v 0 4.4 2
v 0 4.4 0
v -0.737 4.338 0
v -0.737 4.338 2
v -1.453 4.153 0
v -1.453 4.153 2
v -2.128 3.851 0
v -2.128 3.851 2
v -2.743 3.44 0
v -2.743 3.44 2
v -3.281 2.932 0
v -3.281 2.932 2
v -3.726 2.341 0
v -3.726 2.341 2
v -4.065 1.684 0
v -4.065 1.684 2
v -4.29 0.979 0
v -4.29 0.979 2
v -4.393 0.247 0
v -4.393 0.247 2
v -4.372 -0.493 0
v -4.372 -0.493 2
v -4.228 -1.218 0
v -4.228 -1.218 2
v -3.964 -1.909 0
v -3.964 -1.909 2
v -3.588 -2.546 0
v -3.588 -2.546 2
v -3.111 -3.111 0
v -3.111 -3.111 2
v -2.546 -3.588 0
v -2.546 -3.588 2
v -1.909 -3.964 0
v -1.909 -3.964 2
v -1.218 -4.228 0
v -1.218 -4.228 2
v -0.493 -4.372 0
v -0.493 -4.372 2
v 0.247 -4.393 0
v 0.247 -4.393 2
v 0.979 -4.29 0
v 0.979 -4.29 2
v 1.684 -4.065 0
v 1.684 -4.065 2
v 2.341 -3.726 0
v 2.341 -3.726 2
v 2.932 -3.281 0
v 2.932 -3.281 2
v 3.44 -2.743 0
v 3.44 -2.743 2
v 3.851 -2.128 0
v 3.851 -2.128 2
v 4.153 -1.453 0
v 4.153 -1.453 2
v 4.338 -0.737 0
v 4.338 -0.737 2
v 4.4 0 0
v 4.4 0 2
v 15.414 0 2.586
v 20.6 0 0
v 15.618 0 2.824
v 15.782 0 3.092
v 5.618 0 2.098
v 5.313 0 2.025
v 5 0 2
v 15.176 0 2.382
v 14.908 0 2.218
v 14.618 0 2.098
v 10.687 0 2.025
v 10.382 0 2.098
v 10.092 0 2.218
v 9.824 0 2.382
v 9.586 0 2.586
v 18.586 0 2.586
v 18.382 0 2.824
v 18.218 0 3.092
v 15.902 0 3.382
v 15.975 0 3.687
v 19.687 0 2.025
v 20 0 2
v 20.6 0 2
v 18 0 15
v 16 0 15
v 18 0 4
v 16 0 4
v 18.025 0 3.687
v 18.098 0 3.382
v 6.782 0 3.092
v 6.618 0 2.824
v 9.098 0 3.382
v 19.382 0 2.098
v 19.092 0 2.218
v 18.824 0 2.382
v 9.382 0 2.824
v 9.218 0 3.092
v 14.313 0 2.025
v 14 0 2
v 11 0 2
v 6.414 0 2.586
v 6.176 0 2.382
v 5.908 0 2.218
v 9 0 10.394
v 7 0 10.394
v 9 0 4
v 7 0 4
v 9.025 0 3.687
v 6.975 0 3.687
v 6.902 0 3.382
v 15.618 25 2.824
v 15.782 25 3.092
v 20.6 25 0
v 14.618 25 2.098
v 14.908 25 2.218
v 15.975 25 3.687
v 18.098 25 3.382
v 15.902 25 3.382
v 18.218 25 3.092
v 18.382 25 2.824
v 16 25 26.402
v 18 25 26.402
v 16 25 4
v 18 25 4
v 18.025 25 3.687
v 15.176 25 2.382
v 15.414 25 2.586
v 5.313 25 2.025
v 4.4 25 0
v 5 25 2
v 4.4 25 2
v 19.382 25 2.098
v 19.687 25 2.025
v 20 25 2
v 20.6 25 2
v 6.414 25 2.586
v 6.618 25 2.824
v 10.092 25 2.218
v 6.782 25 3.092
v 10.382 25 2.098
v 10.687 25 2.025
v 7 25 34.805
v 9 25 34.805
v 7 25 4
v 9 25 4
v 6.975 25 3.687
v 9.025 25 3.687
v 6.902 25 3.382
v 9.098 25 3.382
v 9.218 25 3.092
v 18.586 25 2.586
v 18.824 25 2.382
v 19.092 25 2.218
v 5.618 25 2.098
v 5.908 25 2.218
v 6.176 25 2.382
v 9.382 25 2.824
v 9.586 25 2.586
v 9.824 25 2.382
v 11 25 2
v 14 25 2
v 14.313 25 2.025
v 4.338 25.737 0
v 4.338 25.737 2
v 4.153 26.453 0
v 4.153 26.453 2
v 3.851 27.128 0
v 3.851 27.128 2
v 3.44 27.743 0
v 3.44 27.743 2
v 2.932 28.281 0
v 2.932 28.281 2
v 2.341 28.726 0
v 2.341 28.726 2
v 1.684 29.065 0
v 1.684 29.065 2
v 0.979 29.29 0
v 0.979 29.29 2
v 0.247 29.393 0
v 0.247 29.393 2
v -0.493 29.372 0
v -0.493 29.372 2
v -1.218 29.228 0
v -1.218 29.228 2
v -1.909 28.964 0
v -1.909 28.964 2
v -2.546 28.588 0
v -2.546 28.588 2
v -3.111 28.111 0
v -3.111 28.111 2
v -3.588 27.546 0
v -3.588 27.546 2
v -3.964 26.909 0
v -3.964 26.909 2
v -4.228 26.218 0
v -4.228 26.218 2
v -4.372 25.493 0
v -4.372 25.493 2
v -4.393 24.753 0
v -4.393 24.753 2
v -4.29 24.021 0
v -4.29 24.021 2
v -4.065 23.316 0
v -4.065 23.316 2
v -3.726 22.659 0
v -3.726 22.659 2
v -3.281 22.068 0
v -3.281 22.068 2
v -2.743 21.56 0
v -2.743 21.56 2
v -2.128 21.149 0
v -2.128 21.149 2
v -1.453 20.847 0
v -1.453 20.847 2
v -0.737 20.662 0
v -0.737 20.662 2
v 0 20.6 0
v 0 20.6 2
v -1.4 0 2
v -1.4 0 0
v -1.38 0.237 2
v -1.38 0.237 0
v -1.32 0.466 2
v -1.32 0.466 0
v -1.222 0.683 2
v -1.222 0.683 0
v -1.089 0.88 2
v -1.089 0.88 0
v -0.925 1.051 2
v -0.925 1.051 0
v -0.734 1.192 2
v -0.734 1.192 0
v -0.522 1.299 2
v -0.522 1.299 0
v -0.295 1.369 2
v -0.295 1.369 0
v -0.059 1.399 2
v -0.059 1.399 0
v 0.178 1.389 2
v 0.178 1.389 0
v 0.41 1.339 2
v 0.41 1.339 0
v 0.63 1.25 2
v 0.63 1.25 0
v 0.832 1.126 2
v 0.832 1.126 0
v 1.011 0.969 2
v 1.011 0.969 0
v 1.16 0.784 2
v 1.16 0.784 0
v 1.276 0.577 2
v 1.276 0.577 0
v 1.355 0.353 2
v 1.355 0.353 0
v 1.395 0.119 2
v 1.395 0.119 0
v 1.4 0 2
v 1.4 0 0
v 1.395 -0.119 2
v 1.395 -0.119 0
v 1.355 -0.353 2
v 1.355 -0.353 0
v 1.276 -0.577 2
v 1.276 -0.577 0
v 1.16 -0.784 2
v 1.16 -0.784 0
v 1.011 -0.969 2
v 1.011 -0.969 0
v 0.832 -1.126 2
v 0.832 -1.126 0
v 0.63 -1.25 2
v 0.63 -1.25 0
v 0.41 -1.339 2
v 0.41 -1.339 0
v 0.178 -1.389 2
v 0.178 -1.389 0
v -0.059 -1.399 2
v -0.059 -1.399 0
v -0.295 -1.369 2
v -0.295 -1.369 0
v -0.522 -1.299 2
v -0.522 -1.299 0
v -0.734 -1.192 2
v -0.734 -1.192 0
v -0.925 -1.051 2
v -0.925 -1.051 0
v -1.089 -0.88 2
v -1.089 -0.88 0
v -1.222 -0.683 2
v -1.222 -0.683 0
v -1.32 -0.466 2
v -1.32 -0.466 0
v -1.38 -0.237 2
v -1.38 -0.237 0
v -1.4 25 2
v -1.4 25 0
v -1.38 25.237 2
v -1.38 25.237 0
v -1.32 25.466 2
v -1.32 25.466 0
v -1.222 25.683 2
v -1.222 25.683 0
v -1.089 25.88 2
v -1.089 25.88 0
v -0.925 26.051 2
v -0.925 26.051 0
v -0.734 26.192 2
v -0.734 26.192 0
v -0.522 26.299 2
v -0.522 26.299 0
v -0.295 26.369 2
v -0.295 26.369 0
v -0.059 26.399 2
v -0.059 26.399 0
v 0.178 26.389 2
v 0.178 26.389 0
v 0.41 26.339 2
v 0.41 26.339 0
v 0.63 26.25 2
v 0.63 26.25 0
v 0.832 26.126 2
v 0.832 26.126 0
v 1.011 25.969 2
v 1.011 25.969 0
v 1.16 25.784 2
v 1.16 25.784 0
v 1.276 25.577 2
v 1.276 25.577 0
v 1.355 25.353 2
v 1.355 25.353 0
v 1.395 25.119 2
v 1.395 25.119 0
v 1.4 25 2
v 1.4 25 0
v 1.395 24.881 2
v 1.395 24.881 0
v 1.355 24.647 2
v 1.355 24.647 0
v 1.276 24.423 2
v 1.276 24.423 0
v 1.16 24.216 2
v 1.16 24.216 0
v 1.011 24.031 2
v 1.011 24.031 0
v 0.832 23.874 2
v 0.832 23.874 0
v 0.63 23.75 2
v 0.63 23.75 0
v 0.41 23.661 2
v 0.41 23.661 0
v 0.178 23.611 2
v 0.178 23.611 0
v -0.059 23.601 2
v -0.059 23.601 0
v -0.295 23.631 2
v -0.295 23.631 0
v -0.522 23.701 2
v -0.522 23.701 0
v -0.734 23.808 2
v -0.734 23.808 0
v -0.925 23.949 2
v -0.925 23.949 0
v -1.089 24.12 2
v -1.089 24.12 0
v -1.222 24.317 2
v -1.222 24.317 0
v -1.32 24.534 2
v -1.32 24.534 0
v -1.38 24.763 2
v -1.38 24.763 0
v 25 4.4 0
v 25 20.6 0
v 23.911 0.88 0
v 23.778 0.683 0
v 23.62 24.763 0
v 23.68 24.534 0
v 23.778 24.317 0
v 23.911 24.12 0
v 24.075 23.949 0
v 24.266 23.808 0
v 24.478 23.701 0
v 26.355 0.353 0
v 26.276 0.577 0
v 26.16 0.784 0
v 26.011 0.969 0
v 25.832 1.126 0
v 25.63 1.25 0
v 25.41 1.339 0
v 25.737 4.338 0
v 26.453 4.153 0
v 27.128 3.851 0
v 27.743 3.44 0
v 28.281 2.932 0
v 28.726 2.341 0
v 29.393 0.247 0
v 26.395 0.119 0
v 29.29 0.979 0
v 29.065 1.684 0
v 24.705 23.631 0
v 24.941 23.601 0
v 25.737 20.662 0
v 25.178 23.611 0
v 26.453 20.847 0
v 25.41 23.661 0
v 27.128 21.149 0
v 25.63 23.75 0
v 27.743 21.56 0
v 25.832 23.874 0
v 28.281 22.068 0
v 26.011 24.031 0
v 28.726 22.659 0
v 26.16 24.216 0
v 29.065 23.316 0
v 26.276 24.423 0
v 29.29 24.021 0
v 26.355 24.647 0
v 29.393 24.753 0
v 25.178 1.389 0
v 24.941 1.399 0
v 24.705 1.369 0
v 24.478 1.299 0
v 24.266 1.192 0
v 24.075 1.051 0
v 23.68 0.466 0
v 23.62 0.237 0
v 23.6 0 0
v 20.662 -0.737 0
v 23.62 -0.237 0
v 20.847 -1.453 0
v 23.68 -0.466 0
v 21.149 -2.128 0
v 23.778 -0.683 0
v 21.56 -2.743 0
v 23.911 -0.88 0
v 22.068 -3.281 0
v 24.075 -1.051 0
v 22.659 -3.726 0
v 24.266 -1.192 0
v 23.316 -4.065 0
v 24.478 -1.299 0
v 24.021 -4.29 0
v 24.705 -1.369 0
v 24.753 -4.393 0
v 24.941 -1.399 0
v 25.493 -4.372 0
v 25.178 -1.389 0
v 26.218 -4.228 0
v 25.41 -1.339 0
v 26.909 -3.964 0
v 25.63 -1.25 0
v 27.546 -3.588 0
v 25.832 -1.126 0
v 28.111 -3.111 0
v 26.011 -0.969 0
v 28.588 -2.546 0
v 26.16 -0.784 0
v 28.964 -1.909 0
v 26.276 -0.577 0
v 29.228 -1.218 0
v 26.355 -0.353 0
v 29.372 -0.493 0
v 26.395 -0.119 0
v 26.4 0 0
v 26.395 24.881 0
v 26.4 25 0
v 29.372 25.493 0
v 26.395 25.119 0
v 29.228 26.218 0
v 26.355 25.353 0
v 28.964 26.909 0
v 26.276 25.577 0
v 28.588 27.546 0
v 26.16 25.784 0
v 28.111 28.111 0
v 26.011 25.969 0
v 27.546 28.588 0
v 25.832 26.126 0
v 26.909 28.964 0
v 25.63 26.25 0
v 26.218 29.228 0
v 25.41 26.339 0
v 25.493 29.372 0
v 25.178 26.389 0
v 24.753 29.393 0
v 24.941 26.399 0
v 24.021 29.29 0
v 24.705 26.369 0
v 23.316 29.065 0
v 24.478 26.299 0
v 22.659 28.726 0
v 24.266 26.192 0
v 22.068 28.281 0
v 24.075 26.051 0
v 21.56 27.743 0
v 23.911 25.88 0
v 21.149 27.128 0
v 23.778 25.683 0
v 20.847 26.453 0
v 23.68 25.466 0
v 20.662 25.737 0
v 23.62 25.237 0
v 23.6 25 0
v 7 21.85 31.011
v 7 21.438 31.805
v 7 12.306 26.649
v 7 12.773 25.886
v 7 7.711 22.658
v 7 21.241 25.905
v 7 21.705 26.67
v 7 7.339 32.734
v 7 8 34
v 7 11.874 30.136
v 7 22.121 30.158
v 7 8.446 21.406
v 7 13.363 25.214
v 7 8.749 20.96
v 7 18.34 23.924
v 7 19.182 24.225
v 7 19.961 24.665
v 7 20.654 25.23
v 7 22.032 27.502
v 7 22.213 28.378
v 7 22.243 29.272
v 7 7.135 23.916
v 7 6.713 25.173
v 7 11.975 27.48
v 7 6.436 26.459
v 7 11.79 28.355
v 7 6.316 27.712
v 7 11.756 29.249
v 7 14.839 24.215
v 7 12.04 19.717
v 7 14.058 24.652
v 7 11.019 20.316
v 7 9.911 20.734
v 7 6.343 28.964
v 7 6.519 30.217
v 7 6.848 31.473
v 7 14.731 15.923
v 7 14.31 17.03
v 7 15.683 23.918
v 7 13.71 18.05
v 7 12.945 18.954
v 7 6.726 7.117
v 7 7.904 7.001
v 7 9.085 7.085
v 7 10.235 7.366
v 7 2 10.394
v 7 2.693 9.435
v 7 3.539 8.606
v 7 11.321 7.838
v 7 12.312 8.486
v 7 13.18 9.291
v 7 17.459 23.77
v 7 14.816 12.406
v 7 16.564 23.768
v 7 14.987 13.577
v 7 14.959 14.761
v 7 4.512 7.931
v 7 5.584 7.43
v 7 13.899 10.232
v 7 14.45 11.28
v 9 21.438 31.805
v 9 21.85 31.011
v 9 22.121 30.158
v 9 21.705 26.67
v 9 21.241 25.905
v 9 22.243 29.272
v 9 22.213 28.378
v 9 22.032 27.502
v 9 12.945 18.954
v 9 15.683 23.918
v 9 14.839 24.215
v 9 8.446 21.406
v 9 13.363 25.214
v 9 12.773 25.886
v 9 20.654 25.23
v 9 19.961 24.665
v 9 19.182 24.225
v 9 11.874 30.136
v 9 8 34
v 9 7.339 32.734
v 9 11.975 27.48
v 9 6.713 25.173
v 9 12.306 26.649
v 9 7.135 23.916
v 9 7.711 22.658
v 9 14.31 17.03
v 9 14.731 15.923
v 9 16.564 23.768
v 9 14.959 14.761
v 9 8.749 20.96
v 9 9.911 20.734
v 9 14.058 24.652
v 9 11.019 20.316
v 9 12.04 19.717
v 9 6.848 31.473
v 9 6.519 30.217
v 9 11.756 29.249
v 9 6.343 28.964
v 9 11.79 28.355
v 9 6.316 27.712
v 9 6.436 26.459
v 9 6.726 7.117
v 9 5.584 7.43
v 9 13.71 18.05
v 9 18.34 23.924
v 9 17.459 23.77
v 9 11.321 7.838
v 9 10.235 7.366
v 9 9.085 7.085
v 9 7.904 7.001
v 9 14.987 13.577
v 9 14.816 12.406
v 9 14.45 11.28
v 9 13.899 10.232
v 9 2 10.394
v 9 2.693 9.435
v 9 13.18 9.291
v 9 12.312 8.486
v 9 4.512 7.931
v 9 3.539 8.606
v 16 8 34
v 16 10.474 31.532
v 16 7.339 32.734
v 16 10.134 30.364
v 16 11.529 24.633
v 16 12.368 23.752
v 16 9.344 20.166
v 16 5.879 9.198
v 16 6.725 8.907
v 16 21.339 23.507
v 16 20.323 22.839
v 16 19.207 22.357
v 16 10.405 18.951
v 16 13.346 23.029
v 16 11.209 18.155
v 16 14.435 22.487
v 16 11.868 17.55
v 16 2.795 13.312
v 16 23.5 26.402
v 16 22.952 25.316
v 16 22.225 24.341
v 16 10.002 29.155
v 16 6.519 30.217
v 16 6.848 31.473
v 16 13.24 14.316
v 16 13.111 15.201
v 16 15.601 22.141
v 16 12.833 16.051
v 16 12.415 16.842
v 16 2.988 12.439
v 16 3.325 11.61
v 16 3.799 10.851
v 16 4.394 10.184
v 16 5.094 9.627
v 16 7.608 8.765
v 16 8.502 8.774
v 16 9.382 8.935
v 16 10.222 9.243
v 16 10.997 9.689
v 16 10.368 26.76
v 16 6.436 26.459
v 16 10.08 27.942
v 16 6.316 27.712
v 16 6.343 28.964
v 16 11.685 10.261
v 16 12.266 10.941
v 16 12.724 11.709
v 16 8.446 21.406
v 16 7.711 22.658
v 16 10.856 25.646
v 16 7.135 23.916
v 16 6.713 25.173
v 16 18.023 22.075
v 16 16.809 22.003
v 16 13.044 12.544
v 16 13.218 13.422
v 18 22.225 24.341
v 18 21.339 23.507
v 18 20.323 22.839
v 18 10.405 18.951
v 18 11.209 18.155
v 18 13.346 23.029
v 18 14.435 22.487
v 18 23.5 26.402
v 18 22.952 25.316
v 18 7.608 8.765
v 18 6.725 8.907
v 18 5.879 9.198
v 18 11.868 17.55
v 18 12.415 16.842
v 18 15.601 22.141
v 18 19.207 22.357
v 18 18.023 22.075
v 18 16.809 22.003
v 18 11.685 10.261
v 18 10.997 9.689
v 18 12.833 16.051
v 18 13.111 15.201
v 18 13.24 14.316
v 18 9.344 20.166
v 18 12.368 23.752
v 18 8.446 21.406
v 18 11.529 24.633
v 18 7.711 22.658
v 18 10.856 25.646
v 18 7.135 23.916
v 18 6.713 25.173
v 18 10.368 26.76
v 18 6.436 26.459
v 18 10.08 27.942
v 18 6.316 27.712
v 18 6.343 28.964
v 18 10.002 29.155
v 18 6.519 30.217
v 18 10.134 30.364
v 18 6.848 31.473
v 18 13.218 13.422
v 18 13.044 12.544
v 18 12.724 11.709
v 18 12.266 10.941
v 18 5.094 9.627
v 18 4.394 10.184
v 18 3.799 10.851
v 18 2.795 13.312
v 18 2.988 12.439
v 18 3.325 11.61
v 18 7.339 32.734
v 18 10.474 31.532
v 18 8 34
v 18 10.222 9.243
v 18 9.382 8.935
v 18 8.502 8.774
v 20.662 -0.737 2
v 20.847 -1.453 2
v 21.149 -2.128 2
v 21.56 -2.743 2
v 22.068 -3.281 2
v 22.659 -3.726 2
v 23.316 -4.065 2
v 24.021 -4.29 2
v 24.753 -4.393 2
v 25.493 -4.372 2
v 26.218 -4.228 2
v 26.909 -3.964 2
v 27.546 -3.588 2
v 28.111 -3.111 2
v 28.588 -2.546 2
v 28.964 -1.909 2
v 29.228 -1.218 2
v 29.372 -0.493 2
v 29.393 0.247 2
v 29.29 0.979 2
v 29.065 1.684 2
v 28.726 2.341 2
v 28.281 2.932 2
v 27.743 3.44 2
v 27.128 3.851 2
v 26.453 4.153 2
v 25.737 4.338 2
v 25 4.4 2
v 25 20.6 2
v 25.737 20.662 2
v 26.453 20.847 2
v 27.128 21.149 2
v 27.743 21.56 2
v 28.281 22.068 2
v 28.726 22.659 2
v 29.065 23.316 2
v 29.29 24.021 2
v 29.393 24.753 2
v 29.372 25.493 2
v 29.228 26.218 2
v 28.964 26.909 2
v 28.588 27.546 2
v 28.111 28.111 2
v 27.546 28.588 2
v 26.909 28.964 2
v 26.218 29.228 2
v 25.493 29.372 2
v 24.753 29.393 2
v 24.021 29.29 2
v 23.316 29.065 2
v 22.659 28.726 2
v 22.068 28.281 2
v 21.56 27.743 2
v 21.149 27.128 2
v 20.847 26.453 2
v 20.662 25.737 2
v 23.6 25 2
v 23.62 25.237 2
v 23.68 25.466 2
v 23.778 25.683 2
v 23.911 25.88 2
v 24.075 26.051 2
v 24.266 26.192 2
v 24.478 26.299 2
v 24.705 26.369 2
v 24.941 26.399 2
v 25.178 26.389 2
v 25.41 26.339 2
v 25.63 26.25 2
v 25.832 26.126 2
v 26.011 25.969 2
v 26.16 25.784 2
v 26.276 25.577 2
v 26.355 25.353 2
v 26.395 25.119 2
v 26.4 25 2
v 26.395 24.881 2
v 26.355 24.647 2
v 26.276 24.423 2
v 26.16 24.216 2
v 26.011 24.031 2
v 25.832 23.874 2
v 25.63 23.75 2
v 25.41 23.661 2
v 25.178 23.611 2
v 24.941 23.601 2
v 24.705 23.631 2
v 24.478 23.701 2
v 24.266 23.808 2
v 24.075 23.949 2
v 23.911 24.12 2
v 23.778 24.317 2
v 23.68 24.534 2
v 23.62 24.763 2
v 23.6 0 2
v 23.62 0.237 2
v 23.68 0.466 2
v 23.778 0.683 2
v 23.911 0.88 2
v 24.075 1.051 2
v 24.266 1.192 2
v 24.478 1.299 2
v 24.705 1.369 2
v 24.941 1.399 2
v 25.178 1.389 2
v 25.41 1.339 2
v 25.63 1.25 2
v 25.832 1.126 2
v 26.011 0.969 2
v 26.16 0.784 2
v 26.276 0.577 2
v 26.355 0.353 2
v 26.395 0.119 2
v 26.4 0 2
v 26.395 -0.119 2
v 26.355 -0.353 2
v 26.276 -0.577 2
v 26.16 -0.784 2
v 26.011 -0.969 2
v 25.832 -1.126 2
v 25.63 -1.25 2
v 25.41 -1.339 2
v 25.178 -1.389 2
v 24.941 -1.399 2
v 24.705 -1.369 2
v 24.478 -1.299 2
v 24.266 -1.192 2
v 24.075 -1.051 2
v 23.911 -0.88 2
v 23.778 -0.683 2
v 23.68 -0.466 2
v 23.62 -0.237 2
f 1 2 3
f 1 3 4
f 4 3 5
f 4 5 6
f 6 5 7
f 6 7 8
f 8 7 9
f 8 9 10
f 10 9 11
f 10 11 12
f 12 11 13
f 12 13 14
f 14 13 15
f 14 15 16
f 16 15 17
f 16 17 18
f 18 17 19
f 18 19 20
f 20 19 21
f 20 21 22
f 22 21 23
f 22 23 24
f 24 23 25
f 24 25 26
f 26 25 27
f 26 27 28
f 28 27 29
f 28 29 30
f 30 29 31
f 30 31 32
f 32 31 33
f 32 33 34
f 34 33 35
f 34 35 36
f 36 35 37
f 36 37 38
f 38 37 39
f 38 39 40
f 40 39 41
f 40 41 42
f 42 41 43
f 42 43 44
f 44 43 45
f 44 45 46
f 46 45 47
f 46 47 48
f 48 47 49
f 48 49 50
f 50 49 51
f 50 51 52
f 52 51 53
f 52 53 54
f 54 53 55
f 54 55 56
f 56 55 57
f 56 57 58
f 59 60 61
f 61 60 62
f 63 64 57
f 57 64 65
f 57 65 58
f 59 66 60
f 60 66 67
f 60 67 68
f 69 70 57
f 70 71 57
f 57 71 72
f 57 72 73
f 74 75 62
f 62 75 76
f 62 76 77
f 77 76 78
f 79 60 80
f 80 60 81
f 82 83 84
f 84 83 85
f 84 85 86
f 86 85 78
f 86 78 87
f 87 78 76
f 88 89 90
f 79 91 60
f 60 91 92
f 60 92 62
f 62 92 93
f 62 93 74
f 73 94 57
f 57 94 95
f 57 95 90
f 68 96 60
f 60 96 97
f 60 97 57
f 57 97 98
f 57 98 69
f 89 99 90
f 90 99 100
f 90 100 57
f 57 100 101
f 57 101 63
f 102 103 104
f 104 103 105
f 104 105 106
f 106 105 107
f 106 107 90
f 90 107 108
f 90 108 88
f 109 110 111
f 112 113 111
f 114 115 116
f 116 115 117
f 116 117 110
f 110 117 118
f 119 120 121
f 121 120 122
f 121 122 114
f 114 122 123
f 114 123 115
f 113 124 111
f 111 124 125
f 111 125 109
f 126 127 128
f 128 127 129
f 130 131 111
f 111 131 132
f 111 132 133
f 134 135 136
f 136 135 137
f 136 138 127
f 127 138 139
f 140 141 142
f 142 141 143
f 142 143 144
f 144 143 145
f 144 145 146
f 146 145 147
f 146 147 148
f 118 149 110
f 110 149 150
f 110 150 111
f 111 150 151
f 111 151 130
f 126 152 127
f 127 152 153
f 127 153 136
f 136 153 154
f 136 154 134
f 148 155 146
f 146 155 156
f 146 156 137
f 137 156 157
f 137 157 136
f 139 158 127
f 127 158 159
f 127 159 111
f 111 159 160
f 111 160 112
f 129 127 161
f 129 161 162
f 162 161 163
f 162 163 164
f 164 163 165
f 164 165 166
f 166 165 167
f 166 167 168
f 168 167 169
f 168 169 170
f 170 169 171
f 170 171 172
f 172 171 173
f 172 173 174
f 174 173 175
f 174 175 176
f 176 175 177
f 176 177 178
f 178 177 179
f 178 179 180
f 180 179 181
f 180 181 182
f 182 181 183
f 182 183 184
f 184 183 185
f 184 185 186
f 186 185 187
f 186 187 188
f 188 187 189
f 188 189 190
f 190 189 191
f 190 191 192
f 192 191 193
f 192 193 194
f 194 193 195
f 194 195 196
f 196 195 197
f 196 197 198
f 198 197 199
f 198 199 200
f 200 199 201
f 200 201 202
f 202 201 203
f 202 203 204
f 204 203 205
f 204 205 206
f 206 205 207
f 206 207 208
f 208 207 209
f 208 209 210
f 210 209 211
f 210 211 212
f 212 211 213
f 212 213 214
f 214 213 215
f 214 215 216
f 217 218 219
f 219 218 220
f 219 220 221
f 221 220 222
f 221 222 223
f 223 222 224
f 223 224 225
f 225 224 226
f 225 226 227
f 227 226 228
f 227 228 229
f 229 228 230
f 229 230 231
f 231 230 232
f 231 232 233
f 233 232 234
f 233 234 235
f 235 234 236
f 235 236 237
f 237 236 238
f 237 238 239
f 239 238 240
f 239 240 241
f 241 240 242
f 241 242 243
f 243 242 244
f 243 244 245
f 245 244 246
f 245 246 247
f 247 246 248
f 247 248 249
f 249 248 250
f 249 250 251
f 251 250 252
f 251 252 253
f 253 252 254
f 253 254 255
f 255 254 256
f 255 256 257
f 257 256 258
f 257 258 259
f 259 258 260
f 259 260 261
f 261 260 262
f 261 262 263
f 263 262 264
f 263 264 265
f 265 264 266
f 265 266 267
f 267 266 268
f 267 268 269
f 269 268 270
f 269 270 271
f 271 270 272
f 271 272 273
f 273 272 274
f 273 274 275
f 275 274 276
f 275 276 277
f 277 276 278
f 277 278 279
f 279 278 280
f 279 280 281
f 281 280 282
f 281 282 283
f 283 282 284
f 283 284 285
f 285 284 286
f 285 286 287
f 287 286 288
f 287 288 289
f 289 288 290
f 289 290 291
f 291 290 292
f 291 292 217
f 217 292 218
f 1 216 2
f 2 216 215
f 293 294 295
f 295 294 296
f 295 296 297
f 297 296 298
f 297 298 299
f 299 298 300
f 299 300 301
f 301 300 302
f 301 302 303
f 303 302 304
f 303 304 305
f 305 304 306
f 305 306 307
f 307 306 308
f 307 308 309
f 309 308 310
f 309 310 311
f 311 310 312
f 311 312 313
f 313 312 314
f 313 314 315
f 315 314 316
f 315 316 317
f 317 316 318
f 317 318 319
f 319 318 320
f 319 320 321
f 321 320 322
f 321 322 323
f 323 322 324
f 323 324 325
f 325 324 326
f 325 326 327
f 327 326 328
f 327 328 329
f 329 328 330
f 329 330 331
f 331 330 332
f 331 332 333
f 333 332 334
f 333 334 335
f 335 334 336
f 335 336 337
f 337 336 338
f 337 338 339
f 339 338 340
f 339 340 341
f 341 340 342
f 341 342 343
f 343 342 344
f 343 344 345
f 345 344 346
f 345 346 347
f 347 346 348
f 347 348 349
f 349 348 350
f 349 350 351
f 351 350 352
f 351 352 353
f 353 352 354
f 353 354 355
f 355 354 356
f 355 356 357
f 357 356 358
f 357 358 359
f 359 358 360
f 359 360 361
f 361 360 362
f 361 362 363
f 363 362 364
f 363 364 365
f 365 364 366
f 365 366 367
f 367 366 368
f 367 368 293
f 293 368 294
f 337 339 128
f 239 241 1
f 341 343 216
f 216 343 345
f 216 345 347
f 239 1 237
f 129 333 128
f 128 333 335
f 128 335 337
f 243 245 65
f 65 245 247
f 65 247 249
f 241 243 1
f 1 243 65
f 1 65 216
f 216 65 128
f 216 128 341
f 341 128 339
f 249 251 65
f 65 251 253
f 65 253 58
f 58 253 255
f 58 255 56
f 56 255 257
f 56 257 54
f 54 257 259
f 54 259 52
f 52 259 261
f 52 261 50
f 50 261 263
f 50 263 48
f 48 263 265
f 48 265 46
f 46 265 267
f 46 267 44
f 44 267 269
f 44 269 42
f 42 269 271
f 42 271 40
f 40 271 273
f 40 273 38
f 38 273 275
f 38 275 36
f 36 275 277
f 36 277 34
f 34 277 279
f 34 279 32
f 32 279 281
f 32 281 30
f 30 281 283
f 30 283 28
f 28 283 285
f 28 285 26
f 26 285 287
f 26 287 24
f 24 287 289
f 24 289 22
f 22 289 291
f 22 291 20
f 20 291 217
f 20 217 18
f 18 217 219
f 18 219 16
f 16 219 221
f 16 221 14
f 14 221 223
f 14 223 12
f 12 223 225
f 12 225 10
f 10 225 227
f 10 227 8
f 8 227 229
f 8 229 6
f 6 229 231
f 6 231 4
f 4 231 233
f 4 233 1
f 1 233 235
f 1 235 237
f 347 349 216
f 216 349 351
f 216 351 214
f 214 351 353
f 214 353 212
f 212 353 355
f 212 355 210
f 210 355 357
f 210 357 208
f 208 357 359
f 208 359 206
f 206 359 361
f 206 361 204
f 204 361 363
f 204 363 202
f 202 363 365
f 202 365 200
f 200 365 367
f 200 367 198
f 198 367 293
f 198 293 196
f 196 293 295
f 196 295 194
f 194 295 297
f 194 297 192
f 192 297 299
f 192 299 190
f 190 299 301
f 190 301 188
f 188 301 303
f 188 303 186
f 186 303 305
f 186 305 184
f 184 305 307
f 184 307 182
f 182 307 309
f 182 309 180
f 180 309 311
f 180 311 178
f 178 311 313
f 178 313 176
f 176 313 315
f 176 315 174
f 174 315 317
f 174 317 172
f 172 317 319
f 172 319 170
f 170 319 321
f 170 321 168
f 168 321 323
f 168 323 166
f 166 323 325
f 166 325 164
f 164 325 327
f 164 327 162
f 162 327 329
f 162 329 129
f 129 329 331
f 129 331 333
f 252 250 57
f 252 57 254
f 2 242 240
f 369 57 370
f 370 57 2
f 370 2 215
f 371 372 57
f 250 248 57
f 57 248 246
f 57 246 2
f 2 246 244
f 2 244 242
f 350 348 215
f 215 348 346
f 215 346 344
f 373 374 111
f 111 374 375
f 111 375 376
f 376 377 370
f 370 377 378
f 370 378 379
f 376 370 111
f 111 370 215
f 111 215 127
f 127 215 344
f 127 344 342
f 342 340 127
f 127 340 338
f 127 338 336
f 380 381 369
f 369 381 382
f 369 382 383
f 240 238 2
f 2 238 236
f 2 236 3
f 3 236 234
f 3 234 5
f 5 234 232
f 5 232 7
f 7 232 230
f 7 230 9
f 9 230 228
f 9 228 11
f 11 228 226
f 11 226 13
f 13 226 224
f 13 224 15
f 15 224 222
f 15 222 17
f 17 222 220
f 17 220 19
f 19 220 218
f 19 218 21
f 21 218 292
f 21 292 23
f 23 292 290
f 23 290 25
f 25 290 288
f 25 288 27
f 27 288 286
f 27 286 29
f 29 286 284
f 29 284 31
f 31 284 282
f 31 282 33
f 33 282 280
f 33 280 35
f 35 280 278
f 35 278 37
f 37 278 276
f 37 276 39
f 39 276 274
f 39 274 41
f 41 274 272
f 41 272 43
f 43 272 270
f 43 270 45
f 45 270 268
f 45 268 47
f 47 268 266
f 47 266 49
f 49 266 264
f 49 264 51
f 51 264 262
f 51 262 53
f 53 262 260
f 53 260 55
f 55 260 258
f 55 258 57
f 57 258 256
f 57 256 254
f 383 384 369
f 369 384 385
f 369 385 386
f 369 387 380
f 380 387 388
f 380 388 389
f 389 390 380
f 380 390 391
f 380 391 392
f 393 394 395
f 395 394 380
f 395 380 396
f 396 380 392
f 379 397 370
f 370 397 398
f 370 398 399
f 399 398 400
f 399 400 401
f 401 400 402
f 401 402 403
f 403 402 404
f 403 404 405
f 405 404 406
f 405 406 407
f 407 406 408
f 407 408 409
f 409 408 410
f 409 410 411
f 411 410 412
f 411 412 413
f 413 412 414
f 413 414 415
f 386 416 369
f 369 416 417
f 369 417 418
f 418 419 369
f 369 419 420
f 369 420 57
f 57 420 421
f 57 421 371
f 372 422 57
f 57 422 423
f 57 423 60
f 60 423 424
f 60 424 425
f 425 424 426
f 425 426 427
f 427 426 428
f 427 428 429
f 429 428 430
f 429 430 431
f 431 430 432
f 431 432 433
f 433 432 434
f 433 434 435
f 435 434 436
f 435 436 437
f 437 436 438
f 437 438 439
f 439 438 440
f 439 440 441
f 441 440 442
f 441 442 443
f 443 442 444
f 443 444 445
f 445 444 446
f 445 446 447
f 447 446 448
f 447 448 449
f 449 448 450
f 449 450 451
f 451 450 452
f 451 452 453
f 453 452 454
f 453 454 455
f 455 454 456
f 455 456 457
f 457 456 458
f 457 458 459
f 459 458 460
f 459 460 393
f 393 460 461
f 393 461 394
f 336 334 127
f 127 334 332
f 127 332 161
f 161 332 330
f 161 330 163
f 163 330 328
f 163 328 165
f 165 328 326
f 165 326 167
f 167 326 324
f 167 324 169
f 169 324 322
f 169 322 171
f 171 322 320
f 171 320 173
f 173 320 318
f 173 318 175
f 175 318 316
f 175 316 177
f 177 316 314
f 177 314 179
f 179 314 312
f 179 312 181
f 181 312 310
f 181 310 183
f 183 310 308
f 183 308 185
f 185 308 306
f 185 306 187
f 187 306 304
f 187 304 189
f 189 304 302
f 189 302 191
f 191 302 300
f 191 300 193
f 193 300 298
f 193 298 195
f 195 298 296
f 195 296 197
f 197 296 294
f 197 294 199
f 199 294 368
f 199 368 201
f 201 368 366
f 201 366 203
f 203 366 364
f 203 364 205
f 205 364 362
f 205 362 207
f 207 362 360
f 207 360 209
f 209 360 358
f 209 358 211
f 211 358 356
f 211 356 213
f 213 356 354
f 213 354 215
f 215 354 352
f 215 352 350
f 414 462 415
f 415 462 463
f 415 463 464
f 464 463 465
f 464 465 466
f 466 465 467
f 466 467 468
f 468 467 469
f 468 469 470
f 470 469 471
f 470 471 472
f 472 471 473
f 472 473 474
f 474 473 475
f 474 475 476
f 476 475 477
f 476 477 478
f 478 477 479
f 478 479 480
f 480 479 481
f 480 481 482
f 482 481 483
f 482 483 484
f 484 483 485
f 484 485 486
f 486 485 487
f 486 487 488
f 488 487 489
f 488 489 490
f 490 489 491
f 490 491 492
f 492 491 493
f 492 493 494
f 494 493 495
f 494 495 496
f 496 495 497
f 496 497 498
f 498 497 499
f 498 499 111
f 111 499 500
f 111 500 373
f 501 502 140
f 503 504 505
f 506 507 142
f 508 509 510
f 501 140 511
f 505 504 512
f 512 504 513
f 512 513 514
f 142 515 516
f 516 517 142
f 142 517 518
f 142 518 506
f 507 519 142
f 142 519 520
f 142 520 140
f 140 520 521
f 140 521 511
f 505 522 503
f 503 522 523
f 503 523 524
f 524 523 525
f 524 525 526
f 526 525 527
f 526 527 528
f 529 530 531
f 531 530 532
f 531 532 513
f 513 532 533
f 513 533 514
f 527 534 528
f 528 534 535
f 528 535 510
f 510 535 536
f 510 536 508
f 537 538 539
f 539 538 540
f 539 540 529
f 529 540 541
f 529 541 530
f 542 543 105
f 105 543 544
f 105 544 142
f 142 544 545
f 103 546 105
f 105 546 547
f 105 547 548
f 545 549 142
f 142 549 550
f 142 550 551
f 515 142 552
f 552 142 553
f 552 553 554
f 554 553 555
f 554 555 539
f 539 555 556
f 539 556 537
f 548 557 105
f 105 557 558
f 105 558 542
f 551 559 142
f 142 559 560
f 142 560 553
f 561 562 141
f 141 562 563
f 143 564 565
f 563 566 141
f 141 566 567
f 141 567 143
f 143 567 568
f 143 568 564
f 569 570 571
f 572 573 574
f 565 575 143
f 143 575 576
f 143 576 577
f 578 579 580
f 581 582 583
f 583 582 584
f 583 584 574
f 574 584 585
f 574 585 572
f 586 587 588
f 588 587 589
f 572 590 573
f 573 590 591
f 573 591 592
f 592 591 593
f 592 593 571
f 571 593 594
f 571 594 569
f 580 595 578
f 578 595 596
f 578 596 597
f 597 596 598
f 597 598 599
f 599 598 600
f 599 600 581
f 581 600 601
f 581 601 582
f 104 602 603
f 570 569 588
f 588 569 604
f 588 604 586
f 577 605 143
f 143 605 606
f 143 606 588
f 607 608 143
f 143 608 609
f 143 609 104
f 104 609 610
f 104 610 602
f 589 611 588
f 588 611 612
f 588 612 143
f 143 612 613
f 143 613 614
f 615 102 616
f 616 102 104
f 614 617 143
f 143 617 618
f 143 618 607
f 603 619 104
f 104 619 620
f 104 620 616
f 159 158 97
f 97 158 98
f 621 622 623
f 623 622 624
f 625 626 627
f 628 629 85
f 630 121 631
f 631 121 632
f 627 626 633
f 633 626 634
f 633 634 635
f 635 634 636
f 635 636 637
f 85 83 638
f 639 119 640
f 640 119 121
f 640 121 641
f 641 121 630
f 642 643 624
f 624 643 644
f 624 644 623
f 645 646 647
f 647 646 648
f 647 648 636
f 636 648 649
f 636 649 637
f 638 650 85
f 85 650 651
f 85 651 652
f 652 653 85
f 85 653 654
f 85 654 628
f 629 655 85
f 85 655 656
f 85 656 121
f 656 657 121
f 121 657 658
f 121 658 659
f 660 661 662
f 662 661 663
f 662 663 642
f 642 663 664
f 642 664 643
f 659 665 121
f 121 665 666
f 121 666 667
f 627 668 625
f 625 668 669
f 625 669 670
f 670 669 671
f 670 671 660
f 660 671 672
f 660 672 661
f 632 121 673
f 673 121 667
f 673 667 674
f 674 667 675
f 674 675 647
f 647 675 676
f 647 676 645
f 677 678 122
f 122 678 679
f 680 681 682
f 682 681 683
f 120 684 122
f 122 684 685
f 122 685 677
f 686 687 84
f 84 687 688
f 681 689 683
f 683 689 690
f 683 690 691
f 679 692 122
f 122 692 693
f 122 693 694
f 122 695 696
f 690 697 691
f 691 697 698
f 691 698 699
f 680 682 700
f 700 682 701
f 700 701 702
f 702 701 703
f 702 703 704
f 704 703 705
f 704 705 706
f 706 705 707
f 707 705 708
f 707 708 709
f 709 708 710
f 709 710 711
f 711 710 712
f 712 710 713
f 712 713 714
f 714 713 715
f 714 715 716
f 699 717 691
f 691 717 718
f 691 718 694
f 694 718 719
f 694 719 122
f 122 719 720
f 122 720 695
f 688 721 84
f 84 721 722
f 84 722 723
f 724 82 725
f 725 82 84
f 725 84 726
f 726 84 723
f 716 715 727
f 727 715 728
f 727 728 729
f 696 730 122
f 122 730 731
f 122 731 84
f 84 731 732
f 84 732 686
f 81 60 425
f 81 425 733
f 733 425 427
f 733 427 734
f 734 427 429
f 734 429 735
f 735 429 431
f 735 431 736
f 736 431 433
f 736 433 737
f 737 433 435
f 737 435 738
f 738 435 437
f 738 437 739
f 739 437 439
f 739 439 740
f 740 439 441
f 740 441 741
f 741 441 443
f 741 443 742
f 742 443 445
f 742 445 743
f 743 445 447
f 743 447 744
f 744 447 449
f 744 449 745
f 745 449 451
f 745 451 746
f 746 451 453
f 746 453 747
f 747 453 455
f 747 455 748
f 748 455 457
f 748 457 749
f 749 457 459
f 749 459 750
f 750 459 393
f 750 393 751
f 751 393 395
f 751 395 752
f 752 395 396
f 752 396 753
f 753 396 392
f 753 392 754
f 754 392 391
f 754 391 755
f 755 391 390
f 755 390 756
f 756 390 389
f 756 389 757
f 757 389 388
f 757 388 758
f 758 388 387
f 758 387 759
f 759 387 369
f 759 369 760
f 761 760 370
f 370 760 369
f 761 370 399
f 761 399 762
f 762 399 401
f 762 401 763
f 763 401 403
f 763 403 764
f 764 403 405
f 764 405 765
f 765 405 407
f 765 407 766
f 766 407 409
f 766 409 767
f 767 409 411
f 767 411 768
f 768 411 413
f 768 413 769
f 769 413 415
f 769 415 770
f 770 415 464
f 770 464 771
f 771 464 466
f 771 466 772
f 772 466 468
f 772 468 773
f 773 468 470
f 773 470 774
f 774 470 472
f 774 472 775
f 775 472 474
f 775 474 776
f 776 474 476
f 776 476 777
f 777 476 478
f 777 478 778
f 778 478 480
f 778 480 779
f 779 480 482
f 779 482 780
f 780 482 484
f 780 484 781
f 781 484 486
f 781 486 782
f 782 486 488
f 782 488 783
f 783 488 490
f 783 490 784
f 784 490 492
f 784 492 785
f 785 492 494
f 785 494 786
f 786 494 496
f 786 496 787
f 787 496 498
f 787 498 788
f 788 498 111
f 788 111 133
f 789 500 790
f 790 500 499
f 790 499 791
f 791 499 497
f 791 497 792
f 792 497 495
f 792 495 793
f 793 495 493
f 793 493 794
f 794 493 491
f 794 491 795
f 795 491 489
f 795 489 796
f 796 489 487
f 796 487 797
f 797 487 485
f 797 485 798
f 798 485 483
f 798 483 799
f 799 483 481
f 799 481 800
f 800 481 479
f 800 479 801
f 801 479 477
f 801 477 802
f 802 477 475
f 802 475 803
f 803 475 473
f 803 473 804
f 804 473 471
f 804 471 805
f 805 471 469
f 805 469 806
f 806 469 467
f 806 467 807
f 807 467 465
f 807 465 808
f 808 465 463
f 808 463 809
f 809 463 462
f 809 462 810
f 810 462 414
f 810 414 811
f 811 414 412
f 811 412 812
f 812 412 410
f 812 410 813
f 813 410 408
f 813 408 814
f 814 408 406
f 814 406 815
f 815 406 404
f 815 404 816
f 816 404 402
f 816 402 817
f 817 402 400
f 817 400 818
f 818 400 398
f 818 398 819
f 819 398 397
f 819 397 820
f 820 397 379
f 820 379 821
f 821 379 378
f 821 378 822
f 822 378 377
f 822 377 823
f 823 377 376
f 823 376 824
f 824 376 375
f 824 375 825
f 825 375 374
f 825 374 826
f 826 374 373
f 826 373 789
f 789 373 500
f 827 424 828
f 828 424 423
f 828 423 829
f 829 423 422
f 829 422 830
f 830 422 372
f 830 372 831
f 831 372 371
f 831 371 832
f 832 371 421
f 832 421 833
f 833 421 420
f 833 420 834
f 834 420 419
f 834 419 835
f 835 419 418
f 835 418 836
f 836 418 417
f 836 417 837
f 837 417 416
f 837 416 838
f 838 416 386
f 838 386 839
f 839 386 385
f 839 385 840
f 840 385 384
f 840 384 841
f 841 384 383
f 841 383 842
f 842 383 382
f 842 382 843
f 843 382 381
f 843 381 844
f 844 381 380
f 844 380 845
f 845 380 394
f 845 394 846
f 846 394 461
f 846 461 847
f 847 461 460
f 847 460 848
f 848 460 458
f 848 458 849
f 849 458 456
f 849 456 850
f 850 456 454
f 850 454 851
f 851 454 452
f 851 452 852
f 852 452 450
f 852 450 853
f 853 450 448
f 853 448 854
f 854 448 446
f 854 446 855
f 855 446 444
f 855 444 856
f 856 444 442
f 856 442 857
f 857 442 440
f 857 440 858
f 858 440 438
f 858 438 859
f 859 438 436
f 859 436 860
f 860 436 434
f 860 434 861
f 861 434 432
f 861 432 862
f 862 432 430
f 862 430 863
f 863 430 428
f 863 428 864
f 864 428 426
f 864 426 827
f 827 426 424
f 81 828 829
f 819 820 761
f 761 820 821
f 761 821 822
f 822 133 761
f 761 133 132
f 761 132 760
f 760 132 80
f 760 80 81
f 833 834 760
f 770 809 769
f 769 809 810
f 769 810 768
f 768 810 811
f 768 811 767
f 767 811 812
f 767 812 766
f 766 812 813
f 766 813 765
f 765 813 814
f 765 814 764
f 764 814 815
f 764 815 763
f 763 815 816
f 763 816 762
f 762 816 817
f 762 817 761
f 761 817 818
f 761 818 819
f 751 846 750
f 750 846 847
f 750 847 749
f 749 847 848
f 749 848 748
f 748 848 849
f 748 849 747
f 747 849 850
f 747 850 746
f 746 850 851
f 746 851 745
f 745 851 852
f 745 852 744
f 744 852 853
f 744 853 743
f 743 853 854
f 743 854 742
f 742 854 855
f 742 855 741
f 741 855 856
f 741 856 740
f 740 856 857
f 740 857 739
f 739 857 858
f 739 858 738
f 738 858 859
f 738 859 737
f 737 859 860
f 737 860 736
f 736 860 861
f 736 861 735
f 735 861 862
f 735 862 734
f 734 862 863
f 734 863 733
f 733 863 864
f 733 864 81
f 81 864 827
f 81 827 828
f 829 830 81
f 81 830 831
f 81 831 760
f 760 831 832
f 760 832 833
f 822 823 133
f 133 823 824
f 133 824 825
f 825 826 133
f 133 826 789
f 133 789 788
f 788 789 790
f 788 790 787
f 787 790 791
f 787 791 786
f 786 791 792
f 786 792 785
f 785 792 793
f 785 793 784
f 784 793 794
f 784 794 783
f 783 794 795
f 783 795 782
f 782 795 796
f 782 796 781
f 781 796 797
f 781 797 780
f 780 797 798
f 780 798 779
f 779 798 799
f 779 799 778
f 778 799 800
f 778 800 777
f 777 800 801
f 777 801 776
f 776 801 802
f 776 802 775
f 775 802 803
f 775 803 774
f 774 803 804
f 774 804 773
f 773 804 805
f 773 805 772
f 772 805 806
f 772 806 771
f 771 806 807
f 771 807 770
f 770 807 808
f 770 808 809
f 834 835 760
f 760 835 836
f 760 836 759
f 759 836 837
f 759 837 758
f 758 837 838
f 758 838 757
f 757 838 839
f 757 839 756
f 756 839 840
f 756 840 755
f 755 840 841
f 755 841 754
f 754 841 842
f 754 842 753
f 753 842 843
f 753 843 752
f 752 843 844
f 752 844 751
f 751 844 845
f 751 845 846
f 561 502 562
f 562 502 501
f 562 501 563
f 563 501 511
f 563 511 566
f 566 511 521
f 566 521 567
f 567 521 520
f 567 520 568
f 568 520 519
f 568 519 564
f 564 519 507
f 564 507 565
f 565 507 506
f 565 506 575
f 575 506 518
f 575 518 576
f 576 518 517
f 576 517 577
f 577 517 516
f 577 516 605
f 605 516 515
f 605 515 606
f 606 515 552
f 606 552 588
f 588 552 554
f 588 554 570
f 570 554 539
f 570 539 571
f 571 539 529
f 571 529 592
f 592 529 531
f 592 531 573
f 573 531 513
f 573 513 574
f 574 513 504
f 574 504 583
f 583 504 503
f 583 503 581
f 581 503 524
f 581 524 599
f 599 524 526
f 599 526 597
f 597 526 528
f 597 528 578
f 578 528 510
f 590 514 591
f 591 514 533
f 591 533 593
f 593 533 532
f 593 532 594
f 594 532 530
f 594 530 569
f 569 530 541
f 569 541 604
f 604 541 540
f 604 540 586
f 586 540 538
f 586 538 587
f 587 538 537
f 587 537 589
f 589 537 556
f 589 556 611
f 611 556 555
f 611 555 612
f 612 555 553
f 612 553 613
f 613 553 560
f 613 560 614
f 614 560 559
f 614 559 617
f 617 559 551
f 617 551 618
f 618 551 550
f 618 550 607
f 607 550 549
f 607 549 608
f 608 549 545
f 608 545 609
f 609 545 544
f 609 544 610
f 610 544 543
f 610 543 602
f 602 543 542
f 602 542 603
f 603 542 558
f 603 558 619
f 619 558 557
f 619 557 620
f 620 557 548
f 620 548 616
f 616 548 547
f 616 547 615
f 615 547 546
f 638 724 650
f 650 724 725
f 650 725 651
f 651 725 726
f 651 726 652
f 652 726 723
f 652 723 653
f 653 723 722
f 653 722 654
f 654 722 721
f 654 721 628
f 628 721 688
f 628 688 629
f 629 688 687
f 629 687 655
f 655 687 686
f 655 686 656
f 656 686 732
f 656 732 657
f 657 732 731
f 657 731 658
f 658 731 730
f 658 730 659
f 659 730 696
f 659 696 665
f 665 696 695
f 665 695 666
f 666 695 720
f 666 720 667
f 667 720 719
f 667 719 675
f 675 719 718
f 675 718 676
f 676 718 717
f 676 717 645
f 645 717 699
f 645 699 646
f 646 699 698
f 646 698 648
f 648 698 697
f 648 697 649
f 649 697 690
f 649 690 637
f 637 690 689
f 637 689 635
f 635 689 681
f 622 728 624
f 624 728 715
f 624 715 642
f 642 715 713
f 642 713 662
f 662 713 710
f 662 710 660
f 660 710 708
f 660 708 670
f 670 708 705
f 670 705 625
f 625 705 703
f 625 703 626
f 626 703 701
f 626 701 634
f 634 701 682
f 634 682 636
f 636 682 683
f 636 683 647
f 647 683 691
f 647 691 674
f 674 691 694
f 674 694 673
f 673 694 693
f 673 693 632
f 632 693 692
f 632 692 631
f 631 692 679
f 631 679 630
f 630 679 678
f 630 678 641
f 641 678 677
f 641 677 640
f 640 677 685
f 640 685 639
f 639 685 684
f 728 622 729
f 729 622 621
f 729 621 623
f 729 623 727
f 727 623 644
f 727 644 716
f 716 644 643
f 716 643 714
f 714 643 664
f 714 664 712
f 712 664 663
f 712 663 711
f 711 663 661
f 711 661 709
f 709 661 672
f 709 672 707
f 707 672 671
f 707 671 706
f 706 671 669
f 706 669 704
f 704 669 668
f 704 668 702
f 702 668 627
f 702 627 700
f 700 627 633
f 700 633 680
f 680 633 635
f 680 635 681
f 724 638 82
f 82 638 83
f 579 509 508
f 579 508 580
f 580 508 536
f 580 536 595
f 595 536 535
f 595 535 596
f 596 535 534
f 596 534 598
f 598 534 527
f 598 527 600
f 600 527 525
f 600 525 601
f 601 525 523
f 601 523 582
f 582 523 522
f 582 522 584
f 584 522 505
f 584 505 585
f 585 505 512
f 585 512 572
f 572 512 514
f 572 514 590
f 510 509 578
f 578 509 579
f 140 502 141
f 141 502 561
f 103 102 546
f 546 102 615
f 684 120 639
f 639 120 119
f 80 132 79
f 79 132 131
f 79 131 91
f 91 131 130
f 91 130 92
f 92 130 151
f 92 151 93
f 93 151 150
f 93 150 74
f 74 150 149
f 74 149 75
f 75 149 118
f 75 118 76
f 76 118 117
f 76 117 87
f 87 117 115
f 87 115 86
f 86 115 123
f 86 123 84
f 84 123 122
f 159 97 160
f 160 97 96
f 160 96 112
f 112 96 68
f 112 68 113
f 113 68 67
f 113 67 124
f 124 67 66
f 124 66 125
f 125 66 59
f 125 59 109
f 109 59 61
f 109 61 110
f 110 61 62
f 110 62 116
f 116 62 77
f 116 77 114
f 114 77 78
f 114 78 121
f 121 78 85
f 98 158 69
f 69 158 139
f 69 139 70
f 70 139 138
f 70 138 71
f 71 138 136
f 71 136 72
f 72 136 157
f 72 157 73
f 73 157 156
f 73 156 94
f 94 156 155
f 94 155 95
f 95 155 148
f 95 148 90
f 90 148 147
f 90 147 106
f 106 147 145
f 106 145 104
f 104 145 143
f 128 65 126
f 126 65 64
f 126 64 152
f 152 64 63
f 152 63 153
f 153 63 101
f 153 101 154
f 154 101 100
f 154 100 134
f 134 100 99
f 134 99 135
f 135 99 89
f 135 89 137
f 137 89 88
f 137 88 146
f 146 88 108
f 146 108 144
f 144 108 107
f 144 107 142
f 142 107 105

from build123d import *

# Parameters (mm, degrees)
SKETCH1_W             = 7
SKETCH1_H             = 25
BOSS_EXTRUDE1_DEPTH   = 2
SKETCH1_R             = 1.4
BOSS_EXTRUDE1_2_DEPTH = 2
BOSS_EXTRUDE1_3_DEPTH = 2
SKETCH1_3_W           = 2
SKETCH1_3_H           = 25
BOSS_EXTRUDE2_DEPTH   = 40
CUT_EXTRUDE12_REACH   = 56.462
SKETCH2_R             = 5.25
SKETCH2_R_2           = 7
CUT_EXTRUDE13_REACH   = 56.462
SKETCH3_R             = 5.25
SKETCH3_R_2           = 7
CUT_EXTRUDE14_DEPTH   = 55.462096912
CUT_EXTRUDE15_REACH   = 52.769
SKETCH6_W             = 4.605551275
SKETCH6_H             = 2
CUT_EXTRUDE16_REACH   = 52.769
FILLET1_R             = 2


with BuildPart() as part:
    # Sketch1 → Boss-Extrude1 (new body)
    with BuildSketch(Plane.XY):
        with Locations((12.5, 12.5)):
            Rectangle(SKETCH1_W, SKETCH1_H)
    extrude(amount=BOSS_EXTRUDE1_DEPTH)



with BuildPart() as body_2:
    # Sketch1 → Boss-Extrude1 2 (new body)
    with BuildSketch(Plane.XY):
        with BuildLine():
            Line((7, 0), (7, 25))
            Line((7, 25), (4.4, 25))
            ThreePointArc((4.4, 25), (-3.111269837, 28.111269837), (0, 20.6))
            Line((0, 20.6), (0, 4.4))
            ThreePointArc((0, 4.4), (-3.111269837, -3.111269837), (4.4, 0))
            Line((4.4, 0), (7, 0))
        make_face()
        Circle(SKETCH1_R, mode=Mode.SUBTRACT)
        with Locations((0, 25)):
            Circle(SKETCH1_R, mode=Mode.SUBTRACT)
    extrude(amount=BOSS_EXTRUDE1_2_DEPTH)


with BuildPart() as body_3:
    # Sketch1 → Boss-Extrude1 3 (new body)
    with BuildSketch(Plane.XY):
        with BuildLine():
            Line((20.6, 25), (18, 25))
            Line((18, 25), (18, 0))
            Line((18, 0), (20.6, 0))
            ThreePointArc((20.6, 0), (28.111269837, -3.111269837), (25, 4.4))
            Line((25, 4.4), (25, 20.6))
            ThreePointArc((25, 20.6), (28.111269837, 28.111269837), (20.6, 25))
        make_face()
        with Locations((25, 25)):
            Circle(SKETCH1_R, mode=Mode.SUBTRACT)
        with Locations((25, 0)):
            Circle(SKETCH1_R, mode=Mode.SUBTRACT)
    extrude(amount=BOSS_EXTRUDE1_3_DEPTH)


with BuildPart() as part_1:
    add(part.part)

    add(body_2.part)  # Boss-Extrude2 merges body 2

    add(body_3.part)  # Boss-Extrude2 merges body 3
    # Sketch1<3> → Boss-Extrude2 (add)
    with BuildSketch(Plane.XY):
        with Locations((8, 12.5)):
            Rectangle(SKETCH1_3_W, SKETCH1_3_H)
        with Locations((17, 12.5)):
            Rectangle(SKETCH1_3_W, SKETCH1_3_H)
    extrude(amount=BOSS_EXTRUDE2_DEPTH)

    # Sketch2 → Cut-Extrude12 (cut, up to next)
    with BuildSketch(Plane.ZY.offset(-7), mode=Mode.PRIVATE) as cut_extrude12_sk1:
        with Locations((29, 17)):
            Circle(SKETCH2_R)
    cut_extrude12_tool1 = extrude(cut_extrude12_sk1.sketch, amount=-CUT_EXTRUDE12_REACH, mode=Mode.PRIVATE) & part_1.part
    # Sketch2 → Cut-Extrude12 (cut, up to next)
    with BuildSketch(Plane.ZY.offset(-7), mode=Mode.PRIVATE) as cut_extrude12_sk2:
        with Locations((14, 8)):
            Circle(SKETCH2_R_2)
    cut_extrude12_tool2 = extrude(cut_extrude12_sk2.sketch, amount=-CUT_EXTRUDE12_REACH, mode=Mode.PRIVATE) & part_1.part
    add(cut_extrude12_tool1.solids().sort_by_distance((7, 17, 29))[0], mode=Mode.SUBTRACT)
    add(cut_extrude12_tool2.solids().sort_by_distance((7, 8, 14))[0], mode=Mode.SUBTRACT)

    # Sketch3 → Cut-Extrude13 (cut, up to next)
    with BuildSketch(Plane(origin=(18, 0, 0), x_dir=(0, 0, -1), z_dir=(1, 0, 0)), mode=Mode.PRIVATE) as cut_extrude13_sk1:
        with Locations((-14, 8)):
            Circle(SKETCH3_R)
    cut_extrude13_tool1 = extrude(cut_extrude13_sk1.sketch, amount=-CUT_EXTRUDE13_REACH, mode=Mode.PRIVATE) & part_1.part
    # Sketch3 → Cut-Extrude13 (cut, up to next)
    with BuildSketch(Plane(origin=(18, 0, 0), x_dir=(0, 0, -1), z_dir=(1, 0, 0)), mode=Mode.PRIVATE) as cut_extrude13_sk2:
        with Locations((-29, 17)):
            Circle(SKETCH3_R_2)
    cut_extrude13_tool2 = extrude(cut_extrude13_sk2.sketch, amount=-CUT_EXTRUDE13_REACH, mode=Mode.PRIVATE) & part_1.part
    add(cut_extrude13_tool1.solids().sort_by_distance((18, 8, 14))[0], mode=Mode.SUBTRACT)
    add(cut_extrude13_tool2.solids().sort_by_distance((18, 17, 29))[0], mode=Mode.SUBTRACT)

    # Sketch5 → Cut-Extrude14 (cut, through all)
    with BuildSketch(Plane.ZY.offset(-7)):
        with BuildLine():
            Line((31.804811412, 21.437964955), (34.804811412, 25))
            Line((34.804811412, 25), (40, 25))
            Line((40, 25), (40, 0))
            Line((40, 0), (15, 0))
            Line((15, 0), (13.312046989, 2.795269397))
            Line((13.312046989, 2.795269397), (18.15476351, 11.209429883))
            add(Edge.make_bspline(
                [(34, 8), (28.19172845, 4.568111712), (22.349790319, 6.720692965), (18.15476351, 11.209429883)],
                knots=[0, 0, 0, 0, 1, 1, 1, 1], degree=3))
            Line((34, 8), (30.135621564, 11.874293838))
            Line((30.135621564, 11.874293838), (31.804811412, 21.437964955))
        make_face()
    extrude(amount=-CUT_EXTRUDE14_DEPTH, mode=Mode.SUBTRACT)

    # Sketch6 → Cut-Extrude15 (cut, up to next)
    with BuildSketch(Plane.ZY.offset(-7), mode=Mode.PRIVATE) as cut_extrude15_sk1:
        with Locations((12.697224363, 1)):
            Rectangle(SKETCH6_W, SKETCH6_H)
    cut_extrude15_tool1 = extrude(cut_extrude15_sk1.sketch, amount=-CUT_EXTRUDE15_REACH, mode=Mode.PRIVATE) & part_1.part
    add(cut_extrude15_tool1.solids().sort_by_distance((7, 1, 12.697224))[0], mode=Mode.SUBTRACT)

    # Sketch7 → Cut-Extrude16 (cut, up to next)
    with BuildSketch(Plane(origin=(18, 0, 0), x_dir=(0, 0, -1), z_dir=(1, 0, 0)), mode=Mode.PRIVATE) as cut_extrude16_sk1:
        with BuildLine():
            Line((-34.804811412, 25), (-26.401923789, 25))
            Line((-26.401923789, 25), (-26.401923789, 23.5))
            ThreePointArc((-26.401923789, 23.5), (-30.6033676, 19.298556189), (-34.804811412, 23.5))
            Line((-34.804811412, 23.5), (-34.804811412, 25))
        make_face()
    cut_extrude16_tool1 = extrude(cut_extrude16_sk1.sketch, amount=-CUT_EXTRUDE16_REACH, mode=Mode.PRIVATE) & part_1.part
    add(cut_extrude16_tool1.solids().sort_by_distance((18, 22.508493, 30.603368))[0], mode=Mode.SUBTRACT)

    # Fillet1
    fillet1_edges = [part_1.edges().sort_by_distance(p)[0] for p in [
        (18, 12.5, 2),
        (16, 12.5, 2),
        (9, 12.5, 2),
        (7, 12.5, 2),
    ]]
    fillet(fillet1_edges, radius=FILLET1_R)


solid = part_1.part
